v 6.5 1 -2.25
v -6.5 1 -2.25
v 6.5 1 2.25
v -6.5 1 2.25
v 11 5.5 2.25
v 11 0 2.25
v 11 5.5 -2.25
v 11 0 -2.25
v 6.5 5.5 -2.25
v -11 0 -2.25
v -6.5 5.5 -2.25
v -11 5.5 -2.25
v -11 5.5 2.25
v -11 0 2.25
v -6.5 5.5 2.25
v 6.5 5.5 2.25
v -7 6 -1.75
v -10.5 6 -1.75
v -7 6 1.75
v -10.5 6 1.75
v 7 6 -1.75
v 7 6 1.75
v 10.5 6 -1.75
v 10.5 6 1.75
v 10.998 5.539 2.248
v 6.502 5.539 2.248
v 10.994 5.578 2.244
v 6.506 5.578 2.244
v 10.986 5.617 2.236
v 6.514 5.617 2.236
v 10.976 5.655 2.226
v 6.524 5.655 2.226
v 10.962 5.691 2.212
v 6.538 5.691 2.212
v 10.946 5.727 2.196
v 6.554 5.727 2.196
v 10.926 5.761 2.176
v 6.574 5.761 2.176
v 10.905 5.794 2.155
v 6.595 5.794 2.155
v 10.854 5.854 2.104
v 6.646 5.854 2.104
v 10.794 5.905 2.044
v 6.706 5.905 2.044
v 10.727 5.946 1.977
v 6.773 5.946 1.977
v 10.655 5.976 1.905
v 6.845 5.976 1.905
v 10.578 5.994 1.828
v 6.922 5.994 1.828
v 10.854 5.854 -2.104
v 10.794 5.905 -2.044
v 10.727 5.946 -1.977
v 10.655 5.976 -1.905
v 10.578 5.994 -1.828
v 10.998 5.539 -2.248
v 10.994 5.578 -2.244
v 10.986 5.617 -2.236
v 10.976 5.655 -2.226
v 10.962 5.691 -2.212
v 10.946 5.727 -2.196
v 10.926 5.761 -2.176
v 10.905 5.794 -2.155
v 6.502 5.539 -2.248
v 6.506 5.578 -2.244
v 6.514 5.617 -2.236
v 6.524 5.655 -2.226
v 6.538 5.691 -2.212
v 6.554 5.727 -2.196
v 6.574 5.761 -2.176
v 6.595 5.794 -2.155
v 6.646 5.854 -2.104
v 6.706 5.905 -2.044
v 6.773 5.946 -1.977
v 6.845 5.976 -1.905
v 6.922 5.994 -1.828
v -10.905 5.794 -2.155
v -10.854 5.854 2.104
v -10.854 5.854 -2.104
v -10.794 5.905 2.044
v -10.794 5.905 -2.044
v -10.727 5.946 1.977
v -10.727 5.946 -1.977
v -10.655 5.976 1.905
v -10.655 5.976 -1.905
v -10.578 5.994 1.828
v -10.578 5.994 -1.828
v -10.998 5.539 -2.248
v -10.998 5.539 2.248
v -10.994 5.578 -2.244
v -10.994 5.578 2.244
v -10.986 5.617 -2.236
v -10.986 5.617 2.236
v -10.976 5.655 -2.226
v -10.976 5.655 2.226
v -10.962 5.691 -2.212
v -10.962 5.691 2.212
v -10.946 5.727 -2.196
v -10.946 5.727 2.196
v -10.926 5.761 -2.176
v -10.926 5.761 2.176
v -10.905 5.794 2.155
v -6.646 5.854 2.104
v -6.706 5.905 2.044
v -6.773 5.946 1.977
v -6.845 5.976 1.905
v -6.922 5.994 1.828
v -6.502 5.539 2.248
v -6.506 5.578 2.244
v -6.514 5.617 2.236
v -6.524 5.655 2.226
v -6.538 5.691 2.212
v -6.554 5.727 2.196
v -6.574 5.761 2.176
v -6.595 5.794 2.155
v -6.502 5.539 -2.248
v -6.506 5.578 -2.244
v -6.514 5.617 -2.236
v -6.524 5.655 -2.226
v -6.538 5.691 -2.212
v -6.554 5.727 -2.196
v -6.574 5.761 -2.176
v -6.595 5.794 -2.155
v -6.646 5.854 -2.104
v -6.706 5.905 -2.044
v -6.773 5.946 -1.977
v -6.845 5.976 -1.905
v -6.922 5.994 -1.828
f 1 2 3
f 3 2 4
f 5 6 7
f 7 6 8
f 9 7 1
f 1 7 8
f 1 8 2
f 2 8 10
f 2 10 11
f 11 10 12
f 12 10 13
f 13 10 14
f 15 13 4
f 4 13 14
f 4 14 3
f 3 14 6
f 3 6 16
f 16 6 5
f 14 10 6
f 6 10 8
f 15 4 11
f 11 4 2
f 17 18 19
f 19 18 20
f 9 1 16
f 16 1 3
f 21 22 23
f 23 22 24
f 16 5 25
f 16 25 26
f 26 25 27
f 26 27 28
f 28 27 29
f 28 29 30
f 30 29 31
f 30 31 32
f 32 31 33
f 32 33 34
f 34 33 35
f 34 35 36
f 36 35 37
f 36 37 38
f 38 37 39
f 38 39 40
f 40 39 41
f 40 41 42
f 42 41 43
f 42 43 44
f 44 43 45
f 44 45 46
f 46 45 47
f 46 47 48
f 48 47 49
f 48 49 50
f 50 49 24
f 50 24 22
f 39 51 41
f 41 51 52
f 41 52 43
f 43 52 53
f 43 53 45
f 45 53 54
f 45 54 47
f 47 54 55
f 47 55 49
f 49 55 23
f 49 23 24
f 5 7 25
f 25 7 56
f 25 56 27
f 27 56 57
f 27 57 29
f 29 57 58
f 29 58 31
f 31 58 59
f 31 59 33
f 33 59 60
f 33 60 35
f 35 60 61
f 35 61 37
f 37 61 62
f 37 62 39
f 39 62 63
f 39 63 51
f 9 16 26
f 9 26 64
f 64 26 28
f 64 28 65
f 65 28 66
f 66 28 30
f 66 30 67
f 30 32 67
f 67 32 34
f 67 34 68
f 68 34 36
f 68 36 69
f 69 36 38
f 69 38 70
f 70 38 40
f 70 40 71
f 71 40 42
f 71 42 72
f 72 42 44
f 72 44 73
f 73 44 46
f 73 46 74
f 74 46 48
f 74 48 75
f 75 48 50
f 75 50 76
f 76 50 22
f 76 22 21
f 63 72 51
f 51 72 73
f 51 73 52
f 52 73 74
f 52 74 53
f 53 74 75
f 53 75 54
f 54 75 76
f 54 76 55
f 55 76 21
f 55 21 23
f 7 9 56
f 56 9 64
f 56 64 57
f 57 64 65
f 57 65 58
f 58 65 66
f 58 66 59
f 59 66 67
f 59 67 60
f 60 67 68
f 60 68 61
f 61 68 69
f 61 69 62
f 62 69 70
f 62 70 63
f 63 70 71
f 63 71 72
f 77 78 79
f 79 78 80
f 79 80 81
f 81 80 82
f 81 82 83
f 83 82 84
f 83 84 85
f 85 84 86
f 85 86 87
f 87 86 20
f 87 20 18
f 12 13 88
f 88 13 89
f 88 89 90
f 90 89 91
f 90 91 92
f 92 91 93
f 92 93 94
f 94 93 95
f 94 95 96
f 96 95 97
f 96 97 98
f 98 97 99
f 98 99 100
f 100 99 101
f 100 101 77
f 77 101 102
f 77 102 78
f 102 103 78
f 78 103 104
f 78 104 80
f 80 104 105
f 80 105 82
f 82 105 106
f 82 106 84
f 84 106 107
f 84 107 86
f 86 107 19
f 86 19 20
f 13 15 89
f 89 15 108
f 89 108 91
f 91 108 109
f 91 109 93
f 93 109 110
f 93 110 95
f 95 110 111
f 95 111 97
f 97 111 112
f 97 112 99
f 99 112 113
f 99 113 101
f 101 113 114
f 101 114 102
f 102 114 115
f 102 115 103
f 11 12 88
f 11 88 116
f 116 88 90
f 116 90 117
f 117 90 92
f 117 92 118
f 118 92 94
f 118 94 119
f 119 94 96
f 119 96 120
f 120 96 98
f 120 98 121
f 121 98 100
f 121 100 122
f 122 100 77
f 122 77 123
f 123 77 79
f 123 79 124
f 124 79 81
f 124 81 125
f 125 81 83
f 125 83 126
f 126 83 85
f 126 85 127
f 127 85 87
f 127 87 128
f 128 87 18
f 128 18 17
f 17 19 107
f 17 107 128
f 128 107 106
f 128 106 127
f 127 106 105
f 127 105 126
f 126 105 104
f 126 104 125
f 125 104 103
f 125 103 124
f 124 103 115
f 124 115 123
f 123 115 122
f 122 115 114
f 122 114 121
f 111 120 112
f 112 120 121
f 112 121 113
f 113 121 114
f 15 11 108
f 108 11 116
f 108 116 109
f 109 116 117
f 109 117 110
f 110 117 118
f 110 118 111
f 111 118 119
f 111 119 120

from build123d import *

# Parameters (mm, degrees)
SKETCH1_W           = 22
SKETCH1_H           = 4.5
BOSS_EXTRUDE1_DEPTH = 1
SKETCH2_W           = 4.5
SKETCH2_H           = 4.5
BOSS_EXTRUDE2_DEPTH = 5
FILLET1_R           = 0.5


with BuildPart() as part:
    # Sketch1 → Boss-Extrude1 (new body)
    with BuildSketch(Plane(origin=(0, 0, 0), x_dir=(1, 0, 0), z_dir=(0, 1, 0))):
        Rectangle(SKETCH1_W, SKETCH1_H)
    extrude(amount=BOSS_EXTRUDE1_DEPTH)

    # Sketch2 → Boss-Extrude2 (add)
    with BuildSketch(Plane(origin=(0, 1, 0), x_dir=(1, 0, 0), z_dir=(0, 1, 0))):
        with Locations((-8.75, 0)):
            Rectangle(SKETCH2_W, SKETCH2_H)
        with Locations((8.75, 0)):
            Rectangle(SKETCH2_W, SKETCH2_H)
    extrude(amount=BOSS_EXTRUDE2_DEPTH)

    # Fillet1
    fillet1_edges = [part.edges().sort_by_distance(p)[0] for p in [
        (8.75, 6, -2.25),
        (11, 6, 0),
        (8.75, 6, 2.25),
        (6.5, 6, 0),
        (-6.5, 6, 0),
        (-8.75, 6, 2.25),
        (-11, 6, 0),
        (-8.75, 6, -2.25),
    ]]
    fillet(fillet1_edges, radius=FILLET1_R)


solid = part.part
